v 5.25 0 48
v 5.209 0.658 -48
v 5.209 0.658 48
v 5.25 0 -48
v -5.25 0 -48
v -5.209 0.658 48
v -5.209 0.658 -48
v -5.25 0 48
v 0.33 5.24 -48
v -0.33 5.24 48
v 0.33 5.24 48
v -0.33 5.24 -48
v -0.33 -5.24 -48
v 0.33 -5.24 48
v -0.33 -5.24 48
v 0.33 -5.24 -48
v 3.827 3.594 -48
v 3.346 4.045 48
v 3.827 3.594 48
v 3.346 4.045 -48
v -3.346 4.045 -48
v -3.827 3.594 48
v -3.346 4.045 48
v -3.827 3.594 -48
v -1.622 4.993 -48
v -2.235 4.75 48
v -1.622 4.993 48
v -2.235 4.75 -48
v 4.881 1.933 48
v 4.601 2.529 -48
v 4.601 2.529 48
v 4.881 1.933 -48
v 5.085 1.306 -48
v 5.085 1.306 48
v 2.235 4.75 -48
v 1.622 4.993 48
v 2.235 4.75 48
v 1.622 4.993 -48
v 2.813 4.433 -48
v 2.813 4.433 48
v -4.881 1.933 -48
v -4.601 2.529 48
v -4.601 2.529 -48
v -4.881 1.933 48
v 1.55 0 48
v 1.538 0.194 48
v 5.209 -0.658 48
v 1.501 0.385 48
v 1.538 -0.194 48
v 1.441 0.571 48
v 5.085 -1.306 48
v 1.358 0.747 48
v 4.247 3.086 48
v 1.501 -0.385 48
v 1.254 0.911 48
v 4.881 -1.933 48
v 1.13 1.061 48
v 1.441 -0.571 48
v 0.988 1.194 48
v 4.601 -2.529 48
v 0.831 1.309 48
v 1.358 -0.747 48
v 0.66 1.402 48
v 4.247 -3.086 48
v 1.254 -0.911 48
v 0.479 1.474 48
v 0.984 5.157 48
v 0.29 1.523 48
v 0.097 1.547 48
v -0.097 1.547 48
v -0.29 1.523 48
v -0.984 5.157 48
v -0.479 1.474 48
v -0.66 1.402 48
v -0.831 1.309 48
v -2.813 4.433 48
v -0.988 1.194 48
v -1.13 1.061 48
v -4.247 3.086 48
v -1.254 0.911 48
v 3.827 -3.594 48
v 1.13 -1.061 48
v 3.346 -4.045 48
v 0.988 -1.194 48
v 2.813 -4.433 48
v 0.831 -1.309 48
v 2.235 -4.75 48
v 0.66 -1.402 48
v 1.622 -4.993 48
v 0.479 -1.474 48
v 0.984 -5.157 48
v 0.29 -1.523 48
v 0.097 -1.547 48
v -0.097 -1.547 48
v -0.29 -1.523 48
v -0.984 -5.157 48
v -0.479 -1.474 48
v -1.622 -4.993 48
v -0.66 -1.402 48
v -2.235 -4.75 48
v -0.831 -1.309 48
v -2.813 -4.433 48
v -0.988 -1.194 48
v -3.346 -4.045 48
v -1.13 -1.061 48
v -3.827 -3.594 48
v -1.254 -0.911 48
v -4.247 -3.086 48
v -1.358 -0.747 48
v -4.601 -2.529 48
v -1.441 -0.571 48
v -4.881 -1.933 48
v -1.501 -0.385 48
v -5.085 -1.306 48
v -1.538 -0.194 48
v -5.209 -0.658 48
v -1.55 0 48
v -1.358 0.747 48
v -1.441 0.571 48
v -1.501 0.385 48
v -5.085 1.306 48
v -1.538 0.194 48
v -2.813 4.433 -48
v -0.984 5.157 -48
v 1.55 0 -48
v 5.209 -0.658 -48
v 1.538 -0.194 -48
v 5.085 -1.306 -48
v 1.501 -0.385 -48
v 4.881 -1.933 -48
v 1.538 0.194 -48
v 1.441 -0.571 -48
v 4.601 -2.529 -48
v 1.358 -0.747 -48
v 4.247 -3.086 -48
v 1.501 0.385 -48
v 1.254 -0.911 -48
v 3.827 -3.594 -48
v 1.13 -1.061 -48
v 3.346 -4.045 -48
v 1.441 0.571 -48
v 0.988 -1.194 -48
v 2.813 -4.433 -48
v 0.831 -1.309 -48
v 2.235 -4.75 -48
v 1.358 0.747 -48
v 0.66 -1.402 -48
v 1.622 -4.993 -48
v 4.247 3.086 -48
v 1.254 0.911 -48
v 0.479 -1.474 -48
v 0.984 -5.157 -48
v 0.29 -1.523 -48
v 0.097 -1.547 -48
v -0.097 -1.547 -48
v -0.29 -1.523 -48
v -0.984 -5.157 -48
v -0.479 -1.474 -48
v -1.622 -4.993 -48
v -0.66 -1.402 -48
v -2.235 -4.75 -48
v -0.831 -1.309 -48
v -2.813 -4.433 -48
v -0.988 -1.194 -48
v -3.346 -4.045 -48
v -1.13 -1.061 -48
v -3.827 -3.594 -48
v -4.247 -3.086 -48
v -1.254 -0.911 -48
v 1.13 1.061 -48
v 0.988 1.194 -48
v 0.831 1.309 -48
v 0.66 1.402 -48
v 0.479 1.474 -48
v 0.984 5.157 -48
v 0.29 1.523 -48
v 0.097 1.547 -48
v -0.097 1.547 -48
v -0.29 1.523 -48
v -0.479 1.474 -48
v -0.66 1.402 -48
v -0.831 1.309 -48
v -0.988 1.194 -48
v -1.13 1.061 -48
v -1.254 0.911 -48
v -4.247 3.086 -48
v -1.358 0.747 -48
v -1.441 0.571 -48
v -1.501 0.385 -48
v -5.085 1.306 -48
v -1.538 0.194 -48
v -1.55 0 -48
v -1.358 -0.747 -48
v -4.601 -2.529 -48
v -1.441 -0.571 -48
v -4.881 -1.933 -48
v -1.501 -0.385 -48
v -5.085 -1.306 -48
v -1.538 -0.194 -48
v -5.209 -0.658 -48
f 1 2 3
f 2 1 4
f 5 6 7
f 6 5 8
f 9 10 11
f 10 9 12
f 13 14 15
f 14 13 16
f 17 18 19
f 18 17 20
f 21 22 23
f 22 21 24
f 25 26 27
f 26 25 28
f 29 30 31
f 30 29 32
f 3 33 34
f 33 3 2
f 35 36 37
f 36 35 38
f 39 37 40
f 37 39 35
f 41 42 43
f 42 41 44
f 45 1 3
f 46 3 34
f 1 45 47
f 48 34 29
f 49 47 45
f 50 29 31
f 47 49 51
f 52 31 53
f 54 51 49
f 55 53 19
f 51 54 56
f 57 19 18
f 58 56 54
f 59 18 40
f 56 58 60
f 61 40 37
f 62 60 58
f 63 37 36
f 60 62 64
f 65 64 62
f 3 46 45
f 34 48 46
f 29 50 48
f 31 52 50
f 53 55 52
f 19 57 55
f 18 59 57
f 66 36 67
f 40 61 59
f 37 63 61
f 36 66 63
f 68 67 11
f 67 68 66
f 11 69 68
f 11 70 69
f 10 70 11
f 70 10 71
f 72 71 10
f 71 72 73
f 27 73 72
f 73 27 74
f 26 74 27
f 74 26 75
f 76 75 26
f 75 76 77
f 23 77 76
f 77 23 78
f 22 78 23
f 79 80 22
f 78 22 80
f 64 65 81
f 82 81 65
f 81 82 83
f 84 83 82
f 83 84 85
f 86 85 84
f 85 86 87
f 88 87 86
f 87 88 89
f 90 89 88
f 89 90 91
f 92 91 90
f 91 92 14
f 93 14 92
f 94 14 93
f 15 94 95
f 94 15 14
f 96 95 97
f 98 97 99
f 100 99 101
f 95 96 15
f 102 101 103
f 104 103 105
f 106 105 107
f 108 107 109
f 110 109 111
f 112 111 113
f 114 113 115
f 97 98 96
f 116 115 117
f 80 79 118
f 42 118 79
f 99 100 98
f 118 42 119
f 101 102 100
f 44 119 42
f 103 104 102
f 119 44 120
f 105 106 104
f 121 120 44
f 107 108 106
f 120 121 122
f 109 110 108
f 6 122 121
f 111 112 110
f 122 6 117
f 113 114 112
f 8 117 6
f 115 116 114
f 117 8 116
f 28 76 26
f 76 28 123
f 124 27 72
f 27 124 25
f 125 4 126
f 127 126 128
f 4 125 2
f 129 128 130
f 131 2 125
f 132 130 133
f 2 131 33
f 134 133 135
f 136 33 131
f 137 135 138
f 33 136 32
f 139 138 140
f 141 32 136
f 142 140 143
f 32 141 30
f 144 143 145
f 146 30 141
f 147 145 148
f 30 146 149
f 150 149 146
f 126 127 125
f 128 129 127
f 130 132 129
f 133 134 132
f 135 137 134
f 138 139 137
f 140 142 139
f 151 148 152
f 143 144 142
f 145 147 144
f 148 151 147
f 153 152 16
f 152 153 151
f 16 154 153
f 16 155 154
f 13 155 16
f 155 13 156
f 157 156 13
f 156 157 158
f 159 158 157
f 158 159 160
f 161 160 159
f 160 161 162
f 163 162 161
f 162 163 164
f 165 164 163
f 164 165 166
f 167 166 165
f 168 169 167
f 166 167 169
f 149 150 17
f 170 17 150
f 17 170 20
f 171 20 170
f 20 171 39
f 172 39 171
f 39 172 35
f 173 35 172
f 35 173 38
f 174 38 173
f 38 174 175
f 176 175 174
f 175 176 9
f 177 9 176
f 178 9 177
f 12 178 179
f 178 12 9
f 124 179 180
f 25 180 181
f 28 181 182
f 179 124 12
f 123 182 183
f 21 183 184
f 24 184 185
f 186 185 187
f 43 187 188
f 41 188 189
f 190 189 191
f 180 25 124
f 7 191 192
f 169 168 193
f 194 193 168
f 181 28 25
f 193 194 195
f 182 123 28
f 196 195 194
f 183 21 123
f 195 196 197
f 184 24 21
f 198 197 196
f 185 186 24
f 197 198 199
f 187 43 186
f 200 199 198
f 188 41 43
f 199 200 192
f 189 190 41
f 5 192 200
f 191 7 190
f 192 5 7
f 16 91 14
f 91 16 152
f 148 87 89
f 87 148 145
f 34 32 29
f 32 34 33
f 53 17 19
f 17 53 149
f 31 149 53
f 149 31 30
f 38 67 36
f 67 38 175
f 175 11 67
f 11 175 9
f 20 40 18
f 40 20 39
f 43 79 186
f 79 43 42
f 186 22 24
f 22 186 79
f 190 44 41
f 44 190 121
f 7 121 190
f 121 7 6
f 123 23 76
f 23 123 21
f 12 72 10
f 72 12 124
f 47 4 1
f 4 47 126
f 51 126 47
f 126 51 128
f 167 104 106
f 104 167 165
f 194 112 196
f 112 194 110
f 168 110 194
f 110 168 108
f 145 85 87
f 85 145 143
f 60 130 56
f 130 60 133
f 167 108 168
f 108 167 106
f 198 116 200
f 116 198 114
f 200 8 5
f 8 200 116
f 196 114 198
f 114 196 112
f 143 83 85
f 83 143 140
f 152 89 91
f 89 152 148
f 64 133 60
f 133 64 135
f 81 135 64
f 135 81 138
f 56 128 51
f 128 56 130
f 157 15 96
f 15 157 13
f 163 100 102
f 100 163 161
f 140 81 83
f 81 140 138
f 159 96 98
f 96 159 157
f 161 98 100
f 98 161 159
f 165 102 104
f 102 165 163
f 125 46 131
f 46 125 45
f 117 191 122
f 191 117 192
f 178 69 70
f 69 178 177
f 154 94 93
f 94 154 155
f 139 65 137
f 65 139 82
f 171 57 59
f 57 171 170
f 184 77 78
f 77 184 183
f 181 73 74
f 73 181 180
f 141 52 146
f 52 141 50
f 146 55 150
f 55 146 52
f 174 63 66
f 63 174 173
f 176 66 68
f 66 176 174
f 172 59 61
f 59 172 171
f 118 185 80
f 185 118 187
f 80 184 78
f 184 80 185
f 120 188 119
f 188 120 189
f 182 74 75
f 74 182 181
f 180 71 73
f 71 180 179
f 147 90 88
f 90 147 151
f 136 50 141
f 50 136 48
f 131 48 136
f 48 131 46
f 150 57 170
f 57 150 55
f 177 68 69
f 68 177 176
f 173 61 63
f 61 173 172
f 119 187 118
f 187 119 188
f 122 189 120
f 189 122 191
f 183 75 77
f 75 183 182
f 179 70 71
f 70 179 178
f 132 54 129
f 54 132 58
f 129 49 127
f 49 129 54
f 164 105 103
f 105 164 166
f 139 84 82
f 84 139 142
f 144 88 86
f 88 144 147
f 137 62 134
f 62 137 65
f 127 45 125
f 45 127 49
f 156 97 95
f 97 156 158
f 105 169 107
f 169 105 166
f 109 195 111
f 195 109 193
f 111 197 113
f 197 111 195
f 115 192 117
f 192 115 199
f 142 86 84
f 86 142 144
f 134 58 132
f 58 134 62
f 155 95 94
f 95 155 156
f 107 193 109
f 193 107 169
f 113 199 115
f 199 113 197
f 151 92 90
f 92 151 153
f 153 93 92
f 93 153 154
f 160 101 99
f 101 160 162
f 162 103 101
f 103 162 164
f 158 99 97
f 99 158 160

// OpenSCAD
$fn = 50;


difference() {
	union() {
		translate(v = [0, 0, -48.0000000000]) {
			cylinder(h = 96, r = 5.2500000000);
		}
	}
	union() {
		translate(v = [0, 0, -100.0000000000]) {
			cylinder(h = 200, r = 1.5500000000);
		}
	}
}
